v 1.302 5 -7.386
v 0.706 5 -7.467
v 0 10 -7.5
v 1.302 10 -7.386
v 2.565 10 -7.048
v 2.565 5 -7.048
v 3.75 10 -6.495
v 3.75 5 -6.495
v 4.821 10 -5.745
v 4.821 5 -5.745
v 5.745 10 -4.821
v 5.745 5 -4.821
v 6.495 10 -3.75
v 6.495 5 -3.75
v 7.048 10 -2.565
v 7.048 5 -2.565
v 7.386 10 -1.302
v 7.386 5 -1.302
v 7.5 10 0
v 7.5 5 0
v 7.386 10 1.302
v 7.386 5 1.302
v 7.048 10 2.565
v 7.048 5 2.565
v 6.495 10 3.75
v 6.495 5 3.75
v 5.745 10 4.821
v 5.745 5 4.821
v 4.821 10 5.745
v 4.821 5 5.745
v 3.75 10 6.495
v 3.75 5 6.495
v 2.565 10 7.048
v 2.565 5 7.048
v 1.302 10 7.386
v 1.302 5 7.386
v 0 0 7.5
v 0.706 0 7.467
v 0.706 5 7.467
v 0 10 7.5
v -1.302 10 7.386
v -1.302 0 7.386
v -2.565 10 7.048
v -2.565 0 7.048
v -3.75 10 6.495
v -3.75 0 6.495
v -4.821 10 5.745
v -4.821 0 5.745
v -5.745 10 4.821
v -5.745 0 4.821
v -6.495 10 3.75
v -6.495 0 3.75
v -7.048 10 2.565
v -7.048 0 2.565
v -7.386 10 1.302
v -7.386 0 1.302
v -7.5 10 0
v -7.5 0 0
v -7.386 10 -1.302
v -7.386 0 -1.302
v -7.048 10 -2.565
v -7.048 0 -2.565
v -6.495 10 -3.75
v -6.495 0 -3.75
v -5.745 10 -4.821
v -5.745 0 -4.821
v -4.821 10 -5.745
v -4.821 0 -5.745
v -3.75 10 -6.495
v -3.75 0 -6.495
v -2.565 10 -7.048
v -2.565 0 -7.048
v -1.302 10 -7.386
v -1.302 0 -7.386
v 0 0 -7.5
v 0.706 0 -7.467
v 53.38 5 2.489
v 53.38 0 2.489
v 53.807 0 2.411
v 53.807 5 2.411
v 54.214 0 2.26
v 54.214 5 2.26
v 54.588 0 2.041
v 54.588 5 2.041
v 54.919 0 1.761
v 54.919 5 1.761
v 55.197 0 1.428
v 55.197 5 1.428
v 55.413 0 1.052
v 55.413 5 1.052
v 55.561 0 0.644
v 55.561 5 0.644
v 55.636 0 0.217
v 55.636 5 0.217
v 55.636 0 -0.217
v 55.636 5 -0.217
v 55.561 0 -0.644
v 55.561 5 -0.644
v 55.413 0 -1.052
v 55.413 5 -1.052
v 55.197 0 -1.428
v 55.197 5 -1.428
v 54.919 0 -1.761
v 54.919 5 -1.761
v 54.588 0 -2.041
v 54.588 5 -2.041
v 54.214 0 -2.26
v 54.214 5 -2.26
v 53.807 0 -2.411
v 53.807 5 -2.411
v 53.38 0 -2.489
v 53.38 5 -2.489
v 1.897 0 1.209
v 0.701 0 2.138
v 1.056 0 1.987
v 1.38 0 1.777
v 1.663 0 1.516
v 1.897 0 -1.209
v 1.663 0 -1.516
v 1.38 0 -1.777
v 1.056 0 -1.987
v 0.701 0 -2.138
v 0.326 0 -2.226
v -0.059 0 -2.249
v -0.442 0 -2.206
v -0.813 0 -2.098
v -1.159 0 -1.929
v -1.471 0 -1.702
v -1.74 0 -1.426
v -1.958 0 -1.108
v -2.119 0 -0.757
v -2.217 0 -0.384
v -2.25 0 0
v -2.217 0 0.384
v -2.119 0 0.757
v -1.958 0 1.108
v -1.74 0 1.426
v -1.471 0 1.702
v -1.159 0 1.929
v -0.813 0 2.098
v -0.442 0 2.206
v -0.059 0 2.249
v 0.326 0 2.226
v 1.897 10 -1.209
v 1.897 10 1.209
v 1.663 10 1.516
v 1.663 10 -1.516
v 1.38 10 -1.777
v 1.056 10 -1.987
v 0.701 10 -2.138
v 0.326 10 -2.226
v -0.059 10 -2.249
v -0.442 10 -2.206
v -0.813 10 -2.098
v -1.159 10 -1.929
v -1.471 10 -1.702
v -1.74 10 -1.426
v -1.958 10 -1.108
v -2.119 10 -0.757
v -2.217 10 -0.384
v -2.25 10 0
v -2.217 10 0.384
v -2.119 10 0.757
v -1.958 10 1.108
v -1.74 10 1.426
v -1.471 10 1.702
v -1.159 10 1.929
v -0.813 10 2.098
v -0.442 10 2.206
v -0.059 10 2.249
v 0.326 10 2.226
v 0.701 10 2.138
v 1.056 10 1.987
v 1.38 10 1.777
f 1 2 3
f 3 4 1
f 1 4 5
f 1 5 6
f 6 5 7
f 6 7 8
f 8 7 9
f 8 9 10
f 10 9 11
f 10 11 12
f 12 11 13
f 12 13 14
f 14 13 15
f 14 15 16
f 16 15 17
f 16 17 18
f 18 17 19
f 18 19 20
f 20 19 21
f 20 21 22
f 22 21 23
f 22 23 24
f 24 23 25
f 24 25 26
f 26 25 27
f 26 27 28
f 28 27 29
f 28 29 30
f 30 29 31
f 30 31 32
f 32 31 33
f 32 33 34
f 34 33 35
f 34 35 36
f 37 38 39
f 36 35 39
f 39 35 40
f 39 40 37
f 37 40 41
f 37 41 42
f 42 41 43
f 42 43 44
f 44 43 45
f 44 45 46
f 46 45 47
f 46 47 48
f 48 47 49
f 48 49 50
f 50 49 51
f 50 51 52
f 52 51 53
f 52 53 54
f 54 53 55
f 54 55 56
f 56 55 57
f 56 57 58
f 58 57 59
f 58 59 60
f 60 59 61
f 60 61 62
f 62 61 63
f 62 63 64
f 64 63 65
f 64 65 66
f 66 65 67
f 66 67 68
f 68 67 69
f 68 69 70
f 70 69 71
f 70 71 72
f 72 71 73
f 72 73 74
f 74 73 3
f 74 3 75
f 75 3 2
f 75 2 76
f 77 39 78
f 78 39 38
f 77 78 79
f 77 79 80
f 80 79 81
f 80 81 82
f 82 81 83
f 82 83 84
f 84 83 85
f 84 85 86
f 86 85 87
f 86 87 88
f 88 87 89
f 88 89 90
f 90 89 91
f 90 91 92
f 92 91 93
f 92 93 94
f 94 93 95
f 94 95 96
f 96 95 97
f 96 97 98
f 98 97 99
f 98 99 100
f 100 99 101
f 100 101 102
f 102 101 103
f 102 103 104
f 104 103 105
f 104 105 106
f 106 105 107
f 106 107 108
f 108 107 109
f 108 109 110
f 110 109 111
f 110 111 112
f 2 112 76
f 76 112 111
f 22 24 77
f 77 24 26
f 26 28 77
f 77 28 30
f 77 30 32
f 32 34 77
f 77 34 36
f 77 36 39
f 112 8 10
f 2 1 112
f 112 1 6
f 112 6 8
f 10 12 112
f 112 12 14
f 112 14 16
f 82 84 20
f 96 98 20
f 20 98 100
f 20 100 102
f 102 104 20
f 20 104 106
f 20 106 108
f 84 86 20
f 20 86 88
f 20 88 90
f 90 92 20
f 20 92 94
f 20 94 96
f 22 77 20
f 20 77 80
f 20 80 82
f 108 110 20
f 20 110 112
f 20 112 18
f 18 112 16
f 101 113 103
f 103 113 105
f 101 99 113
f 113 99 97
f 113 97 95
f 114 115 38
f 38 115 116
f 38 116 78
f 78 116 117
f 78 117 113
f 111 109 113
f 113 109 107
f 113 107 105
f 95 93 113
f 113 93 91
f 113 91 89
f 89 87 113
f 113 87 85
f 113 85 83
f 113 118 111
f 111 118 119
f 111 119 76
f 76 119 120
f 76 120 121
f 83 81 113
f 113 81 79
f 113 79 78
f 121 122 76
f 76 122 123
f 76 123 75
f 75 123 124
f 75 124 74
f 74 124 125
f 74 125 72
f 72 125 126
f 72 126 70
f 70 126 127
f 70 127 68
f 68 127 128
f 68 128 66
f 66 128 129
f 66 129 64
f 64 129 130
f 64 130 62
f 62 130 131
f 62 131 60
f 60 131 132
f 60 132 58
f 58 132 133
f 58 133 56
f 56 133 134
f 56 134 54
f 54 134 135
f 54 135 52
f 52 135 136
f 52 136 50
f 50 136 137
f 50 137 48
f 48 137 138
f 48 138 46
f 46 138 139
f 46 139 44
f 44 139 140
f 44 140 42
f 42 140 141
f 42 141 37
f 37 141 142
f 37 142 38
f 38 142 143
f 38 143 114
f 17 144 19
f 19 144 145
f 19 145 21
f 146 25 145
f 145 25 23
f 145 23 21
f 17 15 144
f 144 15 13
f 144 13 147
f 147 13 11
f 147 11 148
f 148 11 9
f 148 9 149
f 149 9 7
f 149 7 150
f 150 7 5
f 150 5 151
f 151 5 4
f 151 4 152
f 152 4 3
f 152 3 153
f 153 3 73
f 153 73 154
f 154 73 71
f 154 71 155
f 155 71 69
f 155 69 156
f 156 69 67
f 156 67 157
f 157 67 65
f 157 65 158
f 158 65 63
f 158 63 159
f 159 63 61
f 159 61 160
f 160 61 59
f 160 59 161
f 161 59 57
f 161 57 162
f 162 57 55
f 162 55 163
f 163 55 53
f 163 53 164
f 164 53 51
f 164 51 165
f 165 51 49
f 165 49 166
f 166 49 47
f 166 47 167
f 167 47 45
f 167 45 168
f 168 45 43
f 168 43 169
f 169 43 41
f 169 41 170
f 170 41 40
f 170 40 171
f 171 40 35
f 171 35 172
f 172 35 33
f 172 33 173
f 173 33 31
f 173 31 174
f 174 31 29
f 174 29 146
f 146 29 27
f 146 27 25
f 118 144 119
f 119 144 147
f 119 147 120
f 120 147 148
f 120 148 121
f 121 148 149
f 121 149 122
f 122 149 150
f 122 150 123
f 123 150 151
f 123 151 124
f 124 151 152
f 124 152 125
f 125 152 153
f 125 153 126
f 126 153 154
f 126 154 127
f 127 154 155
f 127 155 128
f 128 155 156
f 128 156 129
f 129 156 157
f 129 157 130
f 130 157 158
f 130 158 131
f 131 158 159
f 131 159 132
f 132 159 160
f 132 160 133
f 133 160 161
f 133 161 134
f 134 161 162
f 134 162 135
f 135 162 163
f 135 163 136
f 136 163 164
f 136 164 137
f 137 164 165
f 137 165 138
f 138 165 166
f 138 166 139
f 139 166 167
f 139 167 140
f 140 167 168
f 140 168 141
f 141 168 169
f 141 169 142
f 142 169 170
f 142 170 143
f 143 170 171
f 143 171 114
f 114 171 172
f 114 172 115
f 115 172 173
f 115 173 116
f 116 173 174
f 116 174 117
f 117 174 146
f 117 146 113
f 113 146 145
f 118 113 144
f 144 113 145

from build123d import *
from build123d.topology import SkipClean

# Parameters (mm, degrees)
EXTRUDE_1_DEPTH     = 5
SKETCH_2_R          = 7.5
EXTRUDE_2_DEPTH     = 5
CUT_EXTRUDE_1_DEPTH = 58.031822398


with BuildPart() as part:
    # 草图1 → 凸台-拉伸1 (new body)
    with BuildSketch(Plane(origin=(0, 0, 0), x_dir=(1, 0, 0), z_dir=(0, 1, 0))):
        with BuildLine():
            Line((0.705615189, 7.466733369), (53.380319548, 2.488911123))
            ThreePointArc((53.380319548, 2.488911123), (55.645114485, 0), (53.380319548, -2.488911123))
            Line((53.380319548, -2.488911123), (0.705615189, -7.466733369))
            ThreePointArc((0.705615189, -7.466733369), (-7.5, 0), (0.705615189, 7.466733369))
        make_face()
    extrude(amount=EXTRUDE_1_DEPTH)

    # 草图2 → 凸台-拉伸2 (add)
    with SkipClean():  # the faces are left unmerged after this step: merging them gives an invalid solid
        with BuildSketch(Plane(origin=(0, 5, 0), x_dir=(1, 0, 0), z_dir=(0, 1, 0))):
            with Locations(Location((0, 0, 0), (0, 0, 84.601512911))):
                Circle(SKETCH_2_R)
        extrude(amount=EXTRUDE_2_DEPTH)

    # 草图3 → 切除-拉伸1 (cut, through all)
    with SkipClean():  # the faces are left unmerged after this step: merging them gives an invalid solid
        with BuildSketch(Plane(origin=(0, 10, 0), x_dir=(1, 0, 0), z_dir=(0, 1, 0))):
            with BuildLine():
                Line((1.897388784, 1.20930385), (1.897388784, -1.20930385))
                ThreePointArc((1.897388784, -1.20930385), (-2.25, 0), (1.897388784, 1.20930385))
            make_face()
        extrude(amount=-CUT_EXTRUDE_1_DEPTH, mode=Mode.SUBTRACT)


solid = part.part
